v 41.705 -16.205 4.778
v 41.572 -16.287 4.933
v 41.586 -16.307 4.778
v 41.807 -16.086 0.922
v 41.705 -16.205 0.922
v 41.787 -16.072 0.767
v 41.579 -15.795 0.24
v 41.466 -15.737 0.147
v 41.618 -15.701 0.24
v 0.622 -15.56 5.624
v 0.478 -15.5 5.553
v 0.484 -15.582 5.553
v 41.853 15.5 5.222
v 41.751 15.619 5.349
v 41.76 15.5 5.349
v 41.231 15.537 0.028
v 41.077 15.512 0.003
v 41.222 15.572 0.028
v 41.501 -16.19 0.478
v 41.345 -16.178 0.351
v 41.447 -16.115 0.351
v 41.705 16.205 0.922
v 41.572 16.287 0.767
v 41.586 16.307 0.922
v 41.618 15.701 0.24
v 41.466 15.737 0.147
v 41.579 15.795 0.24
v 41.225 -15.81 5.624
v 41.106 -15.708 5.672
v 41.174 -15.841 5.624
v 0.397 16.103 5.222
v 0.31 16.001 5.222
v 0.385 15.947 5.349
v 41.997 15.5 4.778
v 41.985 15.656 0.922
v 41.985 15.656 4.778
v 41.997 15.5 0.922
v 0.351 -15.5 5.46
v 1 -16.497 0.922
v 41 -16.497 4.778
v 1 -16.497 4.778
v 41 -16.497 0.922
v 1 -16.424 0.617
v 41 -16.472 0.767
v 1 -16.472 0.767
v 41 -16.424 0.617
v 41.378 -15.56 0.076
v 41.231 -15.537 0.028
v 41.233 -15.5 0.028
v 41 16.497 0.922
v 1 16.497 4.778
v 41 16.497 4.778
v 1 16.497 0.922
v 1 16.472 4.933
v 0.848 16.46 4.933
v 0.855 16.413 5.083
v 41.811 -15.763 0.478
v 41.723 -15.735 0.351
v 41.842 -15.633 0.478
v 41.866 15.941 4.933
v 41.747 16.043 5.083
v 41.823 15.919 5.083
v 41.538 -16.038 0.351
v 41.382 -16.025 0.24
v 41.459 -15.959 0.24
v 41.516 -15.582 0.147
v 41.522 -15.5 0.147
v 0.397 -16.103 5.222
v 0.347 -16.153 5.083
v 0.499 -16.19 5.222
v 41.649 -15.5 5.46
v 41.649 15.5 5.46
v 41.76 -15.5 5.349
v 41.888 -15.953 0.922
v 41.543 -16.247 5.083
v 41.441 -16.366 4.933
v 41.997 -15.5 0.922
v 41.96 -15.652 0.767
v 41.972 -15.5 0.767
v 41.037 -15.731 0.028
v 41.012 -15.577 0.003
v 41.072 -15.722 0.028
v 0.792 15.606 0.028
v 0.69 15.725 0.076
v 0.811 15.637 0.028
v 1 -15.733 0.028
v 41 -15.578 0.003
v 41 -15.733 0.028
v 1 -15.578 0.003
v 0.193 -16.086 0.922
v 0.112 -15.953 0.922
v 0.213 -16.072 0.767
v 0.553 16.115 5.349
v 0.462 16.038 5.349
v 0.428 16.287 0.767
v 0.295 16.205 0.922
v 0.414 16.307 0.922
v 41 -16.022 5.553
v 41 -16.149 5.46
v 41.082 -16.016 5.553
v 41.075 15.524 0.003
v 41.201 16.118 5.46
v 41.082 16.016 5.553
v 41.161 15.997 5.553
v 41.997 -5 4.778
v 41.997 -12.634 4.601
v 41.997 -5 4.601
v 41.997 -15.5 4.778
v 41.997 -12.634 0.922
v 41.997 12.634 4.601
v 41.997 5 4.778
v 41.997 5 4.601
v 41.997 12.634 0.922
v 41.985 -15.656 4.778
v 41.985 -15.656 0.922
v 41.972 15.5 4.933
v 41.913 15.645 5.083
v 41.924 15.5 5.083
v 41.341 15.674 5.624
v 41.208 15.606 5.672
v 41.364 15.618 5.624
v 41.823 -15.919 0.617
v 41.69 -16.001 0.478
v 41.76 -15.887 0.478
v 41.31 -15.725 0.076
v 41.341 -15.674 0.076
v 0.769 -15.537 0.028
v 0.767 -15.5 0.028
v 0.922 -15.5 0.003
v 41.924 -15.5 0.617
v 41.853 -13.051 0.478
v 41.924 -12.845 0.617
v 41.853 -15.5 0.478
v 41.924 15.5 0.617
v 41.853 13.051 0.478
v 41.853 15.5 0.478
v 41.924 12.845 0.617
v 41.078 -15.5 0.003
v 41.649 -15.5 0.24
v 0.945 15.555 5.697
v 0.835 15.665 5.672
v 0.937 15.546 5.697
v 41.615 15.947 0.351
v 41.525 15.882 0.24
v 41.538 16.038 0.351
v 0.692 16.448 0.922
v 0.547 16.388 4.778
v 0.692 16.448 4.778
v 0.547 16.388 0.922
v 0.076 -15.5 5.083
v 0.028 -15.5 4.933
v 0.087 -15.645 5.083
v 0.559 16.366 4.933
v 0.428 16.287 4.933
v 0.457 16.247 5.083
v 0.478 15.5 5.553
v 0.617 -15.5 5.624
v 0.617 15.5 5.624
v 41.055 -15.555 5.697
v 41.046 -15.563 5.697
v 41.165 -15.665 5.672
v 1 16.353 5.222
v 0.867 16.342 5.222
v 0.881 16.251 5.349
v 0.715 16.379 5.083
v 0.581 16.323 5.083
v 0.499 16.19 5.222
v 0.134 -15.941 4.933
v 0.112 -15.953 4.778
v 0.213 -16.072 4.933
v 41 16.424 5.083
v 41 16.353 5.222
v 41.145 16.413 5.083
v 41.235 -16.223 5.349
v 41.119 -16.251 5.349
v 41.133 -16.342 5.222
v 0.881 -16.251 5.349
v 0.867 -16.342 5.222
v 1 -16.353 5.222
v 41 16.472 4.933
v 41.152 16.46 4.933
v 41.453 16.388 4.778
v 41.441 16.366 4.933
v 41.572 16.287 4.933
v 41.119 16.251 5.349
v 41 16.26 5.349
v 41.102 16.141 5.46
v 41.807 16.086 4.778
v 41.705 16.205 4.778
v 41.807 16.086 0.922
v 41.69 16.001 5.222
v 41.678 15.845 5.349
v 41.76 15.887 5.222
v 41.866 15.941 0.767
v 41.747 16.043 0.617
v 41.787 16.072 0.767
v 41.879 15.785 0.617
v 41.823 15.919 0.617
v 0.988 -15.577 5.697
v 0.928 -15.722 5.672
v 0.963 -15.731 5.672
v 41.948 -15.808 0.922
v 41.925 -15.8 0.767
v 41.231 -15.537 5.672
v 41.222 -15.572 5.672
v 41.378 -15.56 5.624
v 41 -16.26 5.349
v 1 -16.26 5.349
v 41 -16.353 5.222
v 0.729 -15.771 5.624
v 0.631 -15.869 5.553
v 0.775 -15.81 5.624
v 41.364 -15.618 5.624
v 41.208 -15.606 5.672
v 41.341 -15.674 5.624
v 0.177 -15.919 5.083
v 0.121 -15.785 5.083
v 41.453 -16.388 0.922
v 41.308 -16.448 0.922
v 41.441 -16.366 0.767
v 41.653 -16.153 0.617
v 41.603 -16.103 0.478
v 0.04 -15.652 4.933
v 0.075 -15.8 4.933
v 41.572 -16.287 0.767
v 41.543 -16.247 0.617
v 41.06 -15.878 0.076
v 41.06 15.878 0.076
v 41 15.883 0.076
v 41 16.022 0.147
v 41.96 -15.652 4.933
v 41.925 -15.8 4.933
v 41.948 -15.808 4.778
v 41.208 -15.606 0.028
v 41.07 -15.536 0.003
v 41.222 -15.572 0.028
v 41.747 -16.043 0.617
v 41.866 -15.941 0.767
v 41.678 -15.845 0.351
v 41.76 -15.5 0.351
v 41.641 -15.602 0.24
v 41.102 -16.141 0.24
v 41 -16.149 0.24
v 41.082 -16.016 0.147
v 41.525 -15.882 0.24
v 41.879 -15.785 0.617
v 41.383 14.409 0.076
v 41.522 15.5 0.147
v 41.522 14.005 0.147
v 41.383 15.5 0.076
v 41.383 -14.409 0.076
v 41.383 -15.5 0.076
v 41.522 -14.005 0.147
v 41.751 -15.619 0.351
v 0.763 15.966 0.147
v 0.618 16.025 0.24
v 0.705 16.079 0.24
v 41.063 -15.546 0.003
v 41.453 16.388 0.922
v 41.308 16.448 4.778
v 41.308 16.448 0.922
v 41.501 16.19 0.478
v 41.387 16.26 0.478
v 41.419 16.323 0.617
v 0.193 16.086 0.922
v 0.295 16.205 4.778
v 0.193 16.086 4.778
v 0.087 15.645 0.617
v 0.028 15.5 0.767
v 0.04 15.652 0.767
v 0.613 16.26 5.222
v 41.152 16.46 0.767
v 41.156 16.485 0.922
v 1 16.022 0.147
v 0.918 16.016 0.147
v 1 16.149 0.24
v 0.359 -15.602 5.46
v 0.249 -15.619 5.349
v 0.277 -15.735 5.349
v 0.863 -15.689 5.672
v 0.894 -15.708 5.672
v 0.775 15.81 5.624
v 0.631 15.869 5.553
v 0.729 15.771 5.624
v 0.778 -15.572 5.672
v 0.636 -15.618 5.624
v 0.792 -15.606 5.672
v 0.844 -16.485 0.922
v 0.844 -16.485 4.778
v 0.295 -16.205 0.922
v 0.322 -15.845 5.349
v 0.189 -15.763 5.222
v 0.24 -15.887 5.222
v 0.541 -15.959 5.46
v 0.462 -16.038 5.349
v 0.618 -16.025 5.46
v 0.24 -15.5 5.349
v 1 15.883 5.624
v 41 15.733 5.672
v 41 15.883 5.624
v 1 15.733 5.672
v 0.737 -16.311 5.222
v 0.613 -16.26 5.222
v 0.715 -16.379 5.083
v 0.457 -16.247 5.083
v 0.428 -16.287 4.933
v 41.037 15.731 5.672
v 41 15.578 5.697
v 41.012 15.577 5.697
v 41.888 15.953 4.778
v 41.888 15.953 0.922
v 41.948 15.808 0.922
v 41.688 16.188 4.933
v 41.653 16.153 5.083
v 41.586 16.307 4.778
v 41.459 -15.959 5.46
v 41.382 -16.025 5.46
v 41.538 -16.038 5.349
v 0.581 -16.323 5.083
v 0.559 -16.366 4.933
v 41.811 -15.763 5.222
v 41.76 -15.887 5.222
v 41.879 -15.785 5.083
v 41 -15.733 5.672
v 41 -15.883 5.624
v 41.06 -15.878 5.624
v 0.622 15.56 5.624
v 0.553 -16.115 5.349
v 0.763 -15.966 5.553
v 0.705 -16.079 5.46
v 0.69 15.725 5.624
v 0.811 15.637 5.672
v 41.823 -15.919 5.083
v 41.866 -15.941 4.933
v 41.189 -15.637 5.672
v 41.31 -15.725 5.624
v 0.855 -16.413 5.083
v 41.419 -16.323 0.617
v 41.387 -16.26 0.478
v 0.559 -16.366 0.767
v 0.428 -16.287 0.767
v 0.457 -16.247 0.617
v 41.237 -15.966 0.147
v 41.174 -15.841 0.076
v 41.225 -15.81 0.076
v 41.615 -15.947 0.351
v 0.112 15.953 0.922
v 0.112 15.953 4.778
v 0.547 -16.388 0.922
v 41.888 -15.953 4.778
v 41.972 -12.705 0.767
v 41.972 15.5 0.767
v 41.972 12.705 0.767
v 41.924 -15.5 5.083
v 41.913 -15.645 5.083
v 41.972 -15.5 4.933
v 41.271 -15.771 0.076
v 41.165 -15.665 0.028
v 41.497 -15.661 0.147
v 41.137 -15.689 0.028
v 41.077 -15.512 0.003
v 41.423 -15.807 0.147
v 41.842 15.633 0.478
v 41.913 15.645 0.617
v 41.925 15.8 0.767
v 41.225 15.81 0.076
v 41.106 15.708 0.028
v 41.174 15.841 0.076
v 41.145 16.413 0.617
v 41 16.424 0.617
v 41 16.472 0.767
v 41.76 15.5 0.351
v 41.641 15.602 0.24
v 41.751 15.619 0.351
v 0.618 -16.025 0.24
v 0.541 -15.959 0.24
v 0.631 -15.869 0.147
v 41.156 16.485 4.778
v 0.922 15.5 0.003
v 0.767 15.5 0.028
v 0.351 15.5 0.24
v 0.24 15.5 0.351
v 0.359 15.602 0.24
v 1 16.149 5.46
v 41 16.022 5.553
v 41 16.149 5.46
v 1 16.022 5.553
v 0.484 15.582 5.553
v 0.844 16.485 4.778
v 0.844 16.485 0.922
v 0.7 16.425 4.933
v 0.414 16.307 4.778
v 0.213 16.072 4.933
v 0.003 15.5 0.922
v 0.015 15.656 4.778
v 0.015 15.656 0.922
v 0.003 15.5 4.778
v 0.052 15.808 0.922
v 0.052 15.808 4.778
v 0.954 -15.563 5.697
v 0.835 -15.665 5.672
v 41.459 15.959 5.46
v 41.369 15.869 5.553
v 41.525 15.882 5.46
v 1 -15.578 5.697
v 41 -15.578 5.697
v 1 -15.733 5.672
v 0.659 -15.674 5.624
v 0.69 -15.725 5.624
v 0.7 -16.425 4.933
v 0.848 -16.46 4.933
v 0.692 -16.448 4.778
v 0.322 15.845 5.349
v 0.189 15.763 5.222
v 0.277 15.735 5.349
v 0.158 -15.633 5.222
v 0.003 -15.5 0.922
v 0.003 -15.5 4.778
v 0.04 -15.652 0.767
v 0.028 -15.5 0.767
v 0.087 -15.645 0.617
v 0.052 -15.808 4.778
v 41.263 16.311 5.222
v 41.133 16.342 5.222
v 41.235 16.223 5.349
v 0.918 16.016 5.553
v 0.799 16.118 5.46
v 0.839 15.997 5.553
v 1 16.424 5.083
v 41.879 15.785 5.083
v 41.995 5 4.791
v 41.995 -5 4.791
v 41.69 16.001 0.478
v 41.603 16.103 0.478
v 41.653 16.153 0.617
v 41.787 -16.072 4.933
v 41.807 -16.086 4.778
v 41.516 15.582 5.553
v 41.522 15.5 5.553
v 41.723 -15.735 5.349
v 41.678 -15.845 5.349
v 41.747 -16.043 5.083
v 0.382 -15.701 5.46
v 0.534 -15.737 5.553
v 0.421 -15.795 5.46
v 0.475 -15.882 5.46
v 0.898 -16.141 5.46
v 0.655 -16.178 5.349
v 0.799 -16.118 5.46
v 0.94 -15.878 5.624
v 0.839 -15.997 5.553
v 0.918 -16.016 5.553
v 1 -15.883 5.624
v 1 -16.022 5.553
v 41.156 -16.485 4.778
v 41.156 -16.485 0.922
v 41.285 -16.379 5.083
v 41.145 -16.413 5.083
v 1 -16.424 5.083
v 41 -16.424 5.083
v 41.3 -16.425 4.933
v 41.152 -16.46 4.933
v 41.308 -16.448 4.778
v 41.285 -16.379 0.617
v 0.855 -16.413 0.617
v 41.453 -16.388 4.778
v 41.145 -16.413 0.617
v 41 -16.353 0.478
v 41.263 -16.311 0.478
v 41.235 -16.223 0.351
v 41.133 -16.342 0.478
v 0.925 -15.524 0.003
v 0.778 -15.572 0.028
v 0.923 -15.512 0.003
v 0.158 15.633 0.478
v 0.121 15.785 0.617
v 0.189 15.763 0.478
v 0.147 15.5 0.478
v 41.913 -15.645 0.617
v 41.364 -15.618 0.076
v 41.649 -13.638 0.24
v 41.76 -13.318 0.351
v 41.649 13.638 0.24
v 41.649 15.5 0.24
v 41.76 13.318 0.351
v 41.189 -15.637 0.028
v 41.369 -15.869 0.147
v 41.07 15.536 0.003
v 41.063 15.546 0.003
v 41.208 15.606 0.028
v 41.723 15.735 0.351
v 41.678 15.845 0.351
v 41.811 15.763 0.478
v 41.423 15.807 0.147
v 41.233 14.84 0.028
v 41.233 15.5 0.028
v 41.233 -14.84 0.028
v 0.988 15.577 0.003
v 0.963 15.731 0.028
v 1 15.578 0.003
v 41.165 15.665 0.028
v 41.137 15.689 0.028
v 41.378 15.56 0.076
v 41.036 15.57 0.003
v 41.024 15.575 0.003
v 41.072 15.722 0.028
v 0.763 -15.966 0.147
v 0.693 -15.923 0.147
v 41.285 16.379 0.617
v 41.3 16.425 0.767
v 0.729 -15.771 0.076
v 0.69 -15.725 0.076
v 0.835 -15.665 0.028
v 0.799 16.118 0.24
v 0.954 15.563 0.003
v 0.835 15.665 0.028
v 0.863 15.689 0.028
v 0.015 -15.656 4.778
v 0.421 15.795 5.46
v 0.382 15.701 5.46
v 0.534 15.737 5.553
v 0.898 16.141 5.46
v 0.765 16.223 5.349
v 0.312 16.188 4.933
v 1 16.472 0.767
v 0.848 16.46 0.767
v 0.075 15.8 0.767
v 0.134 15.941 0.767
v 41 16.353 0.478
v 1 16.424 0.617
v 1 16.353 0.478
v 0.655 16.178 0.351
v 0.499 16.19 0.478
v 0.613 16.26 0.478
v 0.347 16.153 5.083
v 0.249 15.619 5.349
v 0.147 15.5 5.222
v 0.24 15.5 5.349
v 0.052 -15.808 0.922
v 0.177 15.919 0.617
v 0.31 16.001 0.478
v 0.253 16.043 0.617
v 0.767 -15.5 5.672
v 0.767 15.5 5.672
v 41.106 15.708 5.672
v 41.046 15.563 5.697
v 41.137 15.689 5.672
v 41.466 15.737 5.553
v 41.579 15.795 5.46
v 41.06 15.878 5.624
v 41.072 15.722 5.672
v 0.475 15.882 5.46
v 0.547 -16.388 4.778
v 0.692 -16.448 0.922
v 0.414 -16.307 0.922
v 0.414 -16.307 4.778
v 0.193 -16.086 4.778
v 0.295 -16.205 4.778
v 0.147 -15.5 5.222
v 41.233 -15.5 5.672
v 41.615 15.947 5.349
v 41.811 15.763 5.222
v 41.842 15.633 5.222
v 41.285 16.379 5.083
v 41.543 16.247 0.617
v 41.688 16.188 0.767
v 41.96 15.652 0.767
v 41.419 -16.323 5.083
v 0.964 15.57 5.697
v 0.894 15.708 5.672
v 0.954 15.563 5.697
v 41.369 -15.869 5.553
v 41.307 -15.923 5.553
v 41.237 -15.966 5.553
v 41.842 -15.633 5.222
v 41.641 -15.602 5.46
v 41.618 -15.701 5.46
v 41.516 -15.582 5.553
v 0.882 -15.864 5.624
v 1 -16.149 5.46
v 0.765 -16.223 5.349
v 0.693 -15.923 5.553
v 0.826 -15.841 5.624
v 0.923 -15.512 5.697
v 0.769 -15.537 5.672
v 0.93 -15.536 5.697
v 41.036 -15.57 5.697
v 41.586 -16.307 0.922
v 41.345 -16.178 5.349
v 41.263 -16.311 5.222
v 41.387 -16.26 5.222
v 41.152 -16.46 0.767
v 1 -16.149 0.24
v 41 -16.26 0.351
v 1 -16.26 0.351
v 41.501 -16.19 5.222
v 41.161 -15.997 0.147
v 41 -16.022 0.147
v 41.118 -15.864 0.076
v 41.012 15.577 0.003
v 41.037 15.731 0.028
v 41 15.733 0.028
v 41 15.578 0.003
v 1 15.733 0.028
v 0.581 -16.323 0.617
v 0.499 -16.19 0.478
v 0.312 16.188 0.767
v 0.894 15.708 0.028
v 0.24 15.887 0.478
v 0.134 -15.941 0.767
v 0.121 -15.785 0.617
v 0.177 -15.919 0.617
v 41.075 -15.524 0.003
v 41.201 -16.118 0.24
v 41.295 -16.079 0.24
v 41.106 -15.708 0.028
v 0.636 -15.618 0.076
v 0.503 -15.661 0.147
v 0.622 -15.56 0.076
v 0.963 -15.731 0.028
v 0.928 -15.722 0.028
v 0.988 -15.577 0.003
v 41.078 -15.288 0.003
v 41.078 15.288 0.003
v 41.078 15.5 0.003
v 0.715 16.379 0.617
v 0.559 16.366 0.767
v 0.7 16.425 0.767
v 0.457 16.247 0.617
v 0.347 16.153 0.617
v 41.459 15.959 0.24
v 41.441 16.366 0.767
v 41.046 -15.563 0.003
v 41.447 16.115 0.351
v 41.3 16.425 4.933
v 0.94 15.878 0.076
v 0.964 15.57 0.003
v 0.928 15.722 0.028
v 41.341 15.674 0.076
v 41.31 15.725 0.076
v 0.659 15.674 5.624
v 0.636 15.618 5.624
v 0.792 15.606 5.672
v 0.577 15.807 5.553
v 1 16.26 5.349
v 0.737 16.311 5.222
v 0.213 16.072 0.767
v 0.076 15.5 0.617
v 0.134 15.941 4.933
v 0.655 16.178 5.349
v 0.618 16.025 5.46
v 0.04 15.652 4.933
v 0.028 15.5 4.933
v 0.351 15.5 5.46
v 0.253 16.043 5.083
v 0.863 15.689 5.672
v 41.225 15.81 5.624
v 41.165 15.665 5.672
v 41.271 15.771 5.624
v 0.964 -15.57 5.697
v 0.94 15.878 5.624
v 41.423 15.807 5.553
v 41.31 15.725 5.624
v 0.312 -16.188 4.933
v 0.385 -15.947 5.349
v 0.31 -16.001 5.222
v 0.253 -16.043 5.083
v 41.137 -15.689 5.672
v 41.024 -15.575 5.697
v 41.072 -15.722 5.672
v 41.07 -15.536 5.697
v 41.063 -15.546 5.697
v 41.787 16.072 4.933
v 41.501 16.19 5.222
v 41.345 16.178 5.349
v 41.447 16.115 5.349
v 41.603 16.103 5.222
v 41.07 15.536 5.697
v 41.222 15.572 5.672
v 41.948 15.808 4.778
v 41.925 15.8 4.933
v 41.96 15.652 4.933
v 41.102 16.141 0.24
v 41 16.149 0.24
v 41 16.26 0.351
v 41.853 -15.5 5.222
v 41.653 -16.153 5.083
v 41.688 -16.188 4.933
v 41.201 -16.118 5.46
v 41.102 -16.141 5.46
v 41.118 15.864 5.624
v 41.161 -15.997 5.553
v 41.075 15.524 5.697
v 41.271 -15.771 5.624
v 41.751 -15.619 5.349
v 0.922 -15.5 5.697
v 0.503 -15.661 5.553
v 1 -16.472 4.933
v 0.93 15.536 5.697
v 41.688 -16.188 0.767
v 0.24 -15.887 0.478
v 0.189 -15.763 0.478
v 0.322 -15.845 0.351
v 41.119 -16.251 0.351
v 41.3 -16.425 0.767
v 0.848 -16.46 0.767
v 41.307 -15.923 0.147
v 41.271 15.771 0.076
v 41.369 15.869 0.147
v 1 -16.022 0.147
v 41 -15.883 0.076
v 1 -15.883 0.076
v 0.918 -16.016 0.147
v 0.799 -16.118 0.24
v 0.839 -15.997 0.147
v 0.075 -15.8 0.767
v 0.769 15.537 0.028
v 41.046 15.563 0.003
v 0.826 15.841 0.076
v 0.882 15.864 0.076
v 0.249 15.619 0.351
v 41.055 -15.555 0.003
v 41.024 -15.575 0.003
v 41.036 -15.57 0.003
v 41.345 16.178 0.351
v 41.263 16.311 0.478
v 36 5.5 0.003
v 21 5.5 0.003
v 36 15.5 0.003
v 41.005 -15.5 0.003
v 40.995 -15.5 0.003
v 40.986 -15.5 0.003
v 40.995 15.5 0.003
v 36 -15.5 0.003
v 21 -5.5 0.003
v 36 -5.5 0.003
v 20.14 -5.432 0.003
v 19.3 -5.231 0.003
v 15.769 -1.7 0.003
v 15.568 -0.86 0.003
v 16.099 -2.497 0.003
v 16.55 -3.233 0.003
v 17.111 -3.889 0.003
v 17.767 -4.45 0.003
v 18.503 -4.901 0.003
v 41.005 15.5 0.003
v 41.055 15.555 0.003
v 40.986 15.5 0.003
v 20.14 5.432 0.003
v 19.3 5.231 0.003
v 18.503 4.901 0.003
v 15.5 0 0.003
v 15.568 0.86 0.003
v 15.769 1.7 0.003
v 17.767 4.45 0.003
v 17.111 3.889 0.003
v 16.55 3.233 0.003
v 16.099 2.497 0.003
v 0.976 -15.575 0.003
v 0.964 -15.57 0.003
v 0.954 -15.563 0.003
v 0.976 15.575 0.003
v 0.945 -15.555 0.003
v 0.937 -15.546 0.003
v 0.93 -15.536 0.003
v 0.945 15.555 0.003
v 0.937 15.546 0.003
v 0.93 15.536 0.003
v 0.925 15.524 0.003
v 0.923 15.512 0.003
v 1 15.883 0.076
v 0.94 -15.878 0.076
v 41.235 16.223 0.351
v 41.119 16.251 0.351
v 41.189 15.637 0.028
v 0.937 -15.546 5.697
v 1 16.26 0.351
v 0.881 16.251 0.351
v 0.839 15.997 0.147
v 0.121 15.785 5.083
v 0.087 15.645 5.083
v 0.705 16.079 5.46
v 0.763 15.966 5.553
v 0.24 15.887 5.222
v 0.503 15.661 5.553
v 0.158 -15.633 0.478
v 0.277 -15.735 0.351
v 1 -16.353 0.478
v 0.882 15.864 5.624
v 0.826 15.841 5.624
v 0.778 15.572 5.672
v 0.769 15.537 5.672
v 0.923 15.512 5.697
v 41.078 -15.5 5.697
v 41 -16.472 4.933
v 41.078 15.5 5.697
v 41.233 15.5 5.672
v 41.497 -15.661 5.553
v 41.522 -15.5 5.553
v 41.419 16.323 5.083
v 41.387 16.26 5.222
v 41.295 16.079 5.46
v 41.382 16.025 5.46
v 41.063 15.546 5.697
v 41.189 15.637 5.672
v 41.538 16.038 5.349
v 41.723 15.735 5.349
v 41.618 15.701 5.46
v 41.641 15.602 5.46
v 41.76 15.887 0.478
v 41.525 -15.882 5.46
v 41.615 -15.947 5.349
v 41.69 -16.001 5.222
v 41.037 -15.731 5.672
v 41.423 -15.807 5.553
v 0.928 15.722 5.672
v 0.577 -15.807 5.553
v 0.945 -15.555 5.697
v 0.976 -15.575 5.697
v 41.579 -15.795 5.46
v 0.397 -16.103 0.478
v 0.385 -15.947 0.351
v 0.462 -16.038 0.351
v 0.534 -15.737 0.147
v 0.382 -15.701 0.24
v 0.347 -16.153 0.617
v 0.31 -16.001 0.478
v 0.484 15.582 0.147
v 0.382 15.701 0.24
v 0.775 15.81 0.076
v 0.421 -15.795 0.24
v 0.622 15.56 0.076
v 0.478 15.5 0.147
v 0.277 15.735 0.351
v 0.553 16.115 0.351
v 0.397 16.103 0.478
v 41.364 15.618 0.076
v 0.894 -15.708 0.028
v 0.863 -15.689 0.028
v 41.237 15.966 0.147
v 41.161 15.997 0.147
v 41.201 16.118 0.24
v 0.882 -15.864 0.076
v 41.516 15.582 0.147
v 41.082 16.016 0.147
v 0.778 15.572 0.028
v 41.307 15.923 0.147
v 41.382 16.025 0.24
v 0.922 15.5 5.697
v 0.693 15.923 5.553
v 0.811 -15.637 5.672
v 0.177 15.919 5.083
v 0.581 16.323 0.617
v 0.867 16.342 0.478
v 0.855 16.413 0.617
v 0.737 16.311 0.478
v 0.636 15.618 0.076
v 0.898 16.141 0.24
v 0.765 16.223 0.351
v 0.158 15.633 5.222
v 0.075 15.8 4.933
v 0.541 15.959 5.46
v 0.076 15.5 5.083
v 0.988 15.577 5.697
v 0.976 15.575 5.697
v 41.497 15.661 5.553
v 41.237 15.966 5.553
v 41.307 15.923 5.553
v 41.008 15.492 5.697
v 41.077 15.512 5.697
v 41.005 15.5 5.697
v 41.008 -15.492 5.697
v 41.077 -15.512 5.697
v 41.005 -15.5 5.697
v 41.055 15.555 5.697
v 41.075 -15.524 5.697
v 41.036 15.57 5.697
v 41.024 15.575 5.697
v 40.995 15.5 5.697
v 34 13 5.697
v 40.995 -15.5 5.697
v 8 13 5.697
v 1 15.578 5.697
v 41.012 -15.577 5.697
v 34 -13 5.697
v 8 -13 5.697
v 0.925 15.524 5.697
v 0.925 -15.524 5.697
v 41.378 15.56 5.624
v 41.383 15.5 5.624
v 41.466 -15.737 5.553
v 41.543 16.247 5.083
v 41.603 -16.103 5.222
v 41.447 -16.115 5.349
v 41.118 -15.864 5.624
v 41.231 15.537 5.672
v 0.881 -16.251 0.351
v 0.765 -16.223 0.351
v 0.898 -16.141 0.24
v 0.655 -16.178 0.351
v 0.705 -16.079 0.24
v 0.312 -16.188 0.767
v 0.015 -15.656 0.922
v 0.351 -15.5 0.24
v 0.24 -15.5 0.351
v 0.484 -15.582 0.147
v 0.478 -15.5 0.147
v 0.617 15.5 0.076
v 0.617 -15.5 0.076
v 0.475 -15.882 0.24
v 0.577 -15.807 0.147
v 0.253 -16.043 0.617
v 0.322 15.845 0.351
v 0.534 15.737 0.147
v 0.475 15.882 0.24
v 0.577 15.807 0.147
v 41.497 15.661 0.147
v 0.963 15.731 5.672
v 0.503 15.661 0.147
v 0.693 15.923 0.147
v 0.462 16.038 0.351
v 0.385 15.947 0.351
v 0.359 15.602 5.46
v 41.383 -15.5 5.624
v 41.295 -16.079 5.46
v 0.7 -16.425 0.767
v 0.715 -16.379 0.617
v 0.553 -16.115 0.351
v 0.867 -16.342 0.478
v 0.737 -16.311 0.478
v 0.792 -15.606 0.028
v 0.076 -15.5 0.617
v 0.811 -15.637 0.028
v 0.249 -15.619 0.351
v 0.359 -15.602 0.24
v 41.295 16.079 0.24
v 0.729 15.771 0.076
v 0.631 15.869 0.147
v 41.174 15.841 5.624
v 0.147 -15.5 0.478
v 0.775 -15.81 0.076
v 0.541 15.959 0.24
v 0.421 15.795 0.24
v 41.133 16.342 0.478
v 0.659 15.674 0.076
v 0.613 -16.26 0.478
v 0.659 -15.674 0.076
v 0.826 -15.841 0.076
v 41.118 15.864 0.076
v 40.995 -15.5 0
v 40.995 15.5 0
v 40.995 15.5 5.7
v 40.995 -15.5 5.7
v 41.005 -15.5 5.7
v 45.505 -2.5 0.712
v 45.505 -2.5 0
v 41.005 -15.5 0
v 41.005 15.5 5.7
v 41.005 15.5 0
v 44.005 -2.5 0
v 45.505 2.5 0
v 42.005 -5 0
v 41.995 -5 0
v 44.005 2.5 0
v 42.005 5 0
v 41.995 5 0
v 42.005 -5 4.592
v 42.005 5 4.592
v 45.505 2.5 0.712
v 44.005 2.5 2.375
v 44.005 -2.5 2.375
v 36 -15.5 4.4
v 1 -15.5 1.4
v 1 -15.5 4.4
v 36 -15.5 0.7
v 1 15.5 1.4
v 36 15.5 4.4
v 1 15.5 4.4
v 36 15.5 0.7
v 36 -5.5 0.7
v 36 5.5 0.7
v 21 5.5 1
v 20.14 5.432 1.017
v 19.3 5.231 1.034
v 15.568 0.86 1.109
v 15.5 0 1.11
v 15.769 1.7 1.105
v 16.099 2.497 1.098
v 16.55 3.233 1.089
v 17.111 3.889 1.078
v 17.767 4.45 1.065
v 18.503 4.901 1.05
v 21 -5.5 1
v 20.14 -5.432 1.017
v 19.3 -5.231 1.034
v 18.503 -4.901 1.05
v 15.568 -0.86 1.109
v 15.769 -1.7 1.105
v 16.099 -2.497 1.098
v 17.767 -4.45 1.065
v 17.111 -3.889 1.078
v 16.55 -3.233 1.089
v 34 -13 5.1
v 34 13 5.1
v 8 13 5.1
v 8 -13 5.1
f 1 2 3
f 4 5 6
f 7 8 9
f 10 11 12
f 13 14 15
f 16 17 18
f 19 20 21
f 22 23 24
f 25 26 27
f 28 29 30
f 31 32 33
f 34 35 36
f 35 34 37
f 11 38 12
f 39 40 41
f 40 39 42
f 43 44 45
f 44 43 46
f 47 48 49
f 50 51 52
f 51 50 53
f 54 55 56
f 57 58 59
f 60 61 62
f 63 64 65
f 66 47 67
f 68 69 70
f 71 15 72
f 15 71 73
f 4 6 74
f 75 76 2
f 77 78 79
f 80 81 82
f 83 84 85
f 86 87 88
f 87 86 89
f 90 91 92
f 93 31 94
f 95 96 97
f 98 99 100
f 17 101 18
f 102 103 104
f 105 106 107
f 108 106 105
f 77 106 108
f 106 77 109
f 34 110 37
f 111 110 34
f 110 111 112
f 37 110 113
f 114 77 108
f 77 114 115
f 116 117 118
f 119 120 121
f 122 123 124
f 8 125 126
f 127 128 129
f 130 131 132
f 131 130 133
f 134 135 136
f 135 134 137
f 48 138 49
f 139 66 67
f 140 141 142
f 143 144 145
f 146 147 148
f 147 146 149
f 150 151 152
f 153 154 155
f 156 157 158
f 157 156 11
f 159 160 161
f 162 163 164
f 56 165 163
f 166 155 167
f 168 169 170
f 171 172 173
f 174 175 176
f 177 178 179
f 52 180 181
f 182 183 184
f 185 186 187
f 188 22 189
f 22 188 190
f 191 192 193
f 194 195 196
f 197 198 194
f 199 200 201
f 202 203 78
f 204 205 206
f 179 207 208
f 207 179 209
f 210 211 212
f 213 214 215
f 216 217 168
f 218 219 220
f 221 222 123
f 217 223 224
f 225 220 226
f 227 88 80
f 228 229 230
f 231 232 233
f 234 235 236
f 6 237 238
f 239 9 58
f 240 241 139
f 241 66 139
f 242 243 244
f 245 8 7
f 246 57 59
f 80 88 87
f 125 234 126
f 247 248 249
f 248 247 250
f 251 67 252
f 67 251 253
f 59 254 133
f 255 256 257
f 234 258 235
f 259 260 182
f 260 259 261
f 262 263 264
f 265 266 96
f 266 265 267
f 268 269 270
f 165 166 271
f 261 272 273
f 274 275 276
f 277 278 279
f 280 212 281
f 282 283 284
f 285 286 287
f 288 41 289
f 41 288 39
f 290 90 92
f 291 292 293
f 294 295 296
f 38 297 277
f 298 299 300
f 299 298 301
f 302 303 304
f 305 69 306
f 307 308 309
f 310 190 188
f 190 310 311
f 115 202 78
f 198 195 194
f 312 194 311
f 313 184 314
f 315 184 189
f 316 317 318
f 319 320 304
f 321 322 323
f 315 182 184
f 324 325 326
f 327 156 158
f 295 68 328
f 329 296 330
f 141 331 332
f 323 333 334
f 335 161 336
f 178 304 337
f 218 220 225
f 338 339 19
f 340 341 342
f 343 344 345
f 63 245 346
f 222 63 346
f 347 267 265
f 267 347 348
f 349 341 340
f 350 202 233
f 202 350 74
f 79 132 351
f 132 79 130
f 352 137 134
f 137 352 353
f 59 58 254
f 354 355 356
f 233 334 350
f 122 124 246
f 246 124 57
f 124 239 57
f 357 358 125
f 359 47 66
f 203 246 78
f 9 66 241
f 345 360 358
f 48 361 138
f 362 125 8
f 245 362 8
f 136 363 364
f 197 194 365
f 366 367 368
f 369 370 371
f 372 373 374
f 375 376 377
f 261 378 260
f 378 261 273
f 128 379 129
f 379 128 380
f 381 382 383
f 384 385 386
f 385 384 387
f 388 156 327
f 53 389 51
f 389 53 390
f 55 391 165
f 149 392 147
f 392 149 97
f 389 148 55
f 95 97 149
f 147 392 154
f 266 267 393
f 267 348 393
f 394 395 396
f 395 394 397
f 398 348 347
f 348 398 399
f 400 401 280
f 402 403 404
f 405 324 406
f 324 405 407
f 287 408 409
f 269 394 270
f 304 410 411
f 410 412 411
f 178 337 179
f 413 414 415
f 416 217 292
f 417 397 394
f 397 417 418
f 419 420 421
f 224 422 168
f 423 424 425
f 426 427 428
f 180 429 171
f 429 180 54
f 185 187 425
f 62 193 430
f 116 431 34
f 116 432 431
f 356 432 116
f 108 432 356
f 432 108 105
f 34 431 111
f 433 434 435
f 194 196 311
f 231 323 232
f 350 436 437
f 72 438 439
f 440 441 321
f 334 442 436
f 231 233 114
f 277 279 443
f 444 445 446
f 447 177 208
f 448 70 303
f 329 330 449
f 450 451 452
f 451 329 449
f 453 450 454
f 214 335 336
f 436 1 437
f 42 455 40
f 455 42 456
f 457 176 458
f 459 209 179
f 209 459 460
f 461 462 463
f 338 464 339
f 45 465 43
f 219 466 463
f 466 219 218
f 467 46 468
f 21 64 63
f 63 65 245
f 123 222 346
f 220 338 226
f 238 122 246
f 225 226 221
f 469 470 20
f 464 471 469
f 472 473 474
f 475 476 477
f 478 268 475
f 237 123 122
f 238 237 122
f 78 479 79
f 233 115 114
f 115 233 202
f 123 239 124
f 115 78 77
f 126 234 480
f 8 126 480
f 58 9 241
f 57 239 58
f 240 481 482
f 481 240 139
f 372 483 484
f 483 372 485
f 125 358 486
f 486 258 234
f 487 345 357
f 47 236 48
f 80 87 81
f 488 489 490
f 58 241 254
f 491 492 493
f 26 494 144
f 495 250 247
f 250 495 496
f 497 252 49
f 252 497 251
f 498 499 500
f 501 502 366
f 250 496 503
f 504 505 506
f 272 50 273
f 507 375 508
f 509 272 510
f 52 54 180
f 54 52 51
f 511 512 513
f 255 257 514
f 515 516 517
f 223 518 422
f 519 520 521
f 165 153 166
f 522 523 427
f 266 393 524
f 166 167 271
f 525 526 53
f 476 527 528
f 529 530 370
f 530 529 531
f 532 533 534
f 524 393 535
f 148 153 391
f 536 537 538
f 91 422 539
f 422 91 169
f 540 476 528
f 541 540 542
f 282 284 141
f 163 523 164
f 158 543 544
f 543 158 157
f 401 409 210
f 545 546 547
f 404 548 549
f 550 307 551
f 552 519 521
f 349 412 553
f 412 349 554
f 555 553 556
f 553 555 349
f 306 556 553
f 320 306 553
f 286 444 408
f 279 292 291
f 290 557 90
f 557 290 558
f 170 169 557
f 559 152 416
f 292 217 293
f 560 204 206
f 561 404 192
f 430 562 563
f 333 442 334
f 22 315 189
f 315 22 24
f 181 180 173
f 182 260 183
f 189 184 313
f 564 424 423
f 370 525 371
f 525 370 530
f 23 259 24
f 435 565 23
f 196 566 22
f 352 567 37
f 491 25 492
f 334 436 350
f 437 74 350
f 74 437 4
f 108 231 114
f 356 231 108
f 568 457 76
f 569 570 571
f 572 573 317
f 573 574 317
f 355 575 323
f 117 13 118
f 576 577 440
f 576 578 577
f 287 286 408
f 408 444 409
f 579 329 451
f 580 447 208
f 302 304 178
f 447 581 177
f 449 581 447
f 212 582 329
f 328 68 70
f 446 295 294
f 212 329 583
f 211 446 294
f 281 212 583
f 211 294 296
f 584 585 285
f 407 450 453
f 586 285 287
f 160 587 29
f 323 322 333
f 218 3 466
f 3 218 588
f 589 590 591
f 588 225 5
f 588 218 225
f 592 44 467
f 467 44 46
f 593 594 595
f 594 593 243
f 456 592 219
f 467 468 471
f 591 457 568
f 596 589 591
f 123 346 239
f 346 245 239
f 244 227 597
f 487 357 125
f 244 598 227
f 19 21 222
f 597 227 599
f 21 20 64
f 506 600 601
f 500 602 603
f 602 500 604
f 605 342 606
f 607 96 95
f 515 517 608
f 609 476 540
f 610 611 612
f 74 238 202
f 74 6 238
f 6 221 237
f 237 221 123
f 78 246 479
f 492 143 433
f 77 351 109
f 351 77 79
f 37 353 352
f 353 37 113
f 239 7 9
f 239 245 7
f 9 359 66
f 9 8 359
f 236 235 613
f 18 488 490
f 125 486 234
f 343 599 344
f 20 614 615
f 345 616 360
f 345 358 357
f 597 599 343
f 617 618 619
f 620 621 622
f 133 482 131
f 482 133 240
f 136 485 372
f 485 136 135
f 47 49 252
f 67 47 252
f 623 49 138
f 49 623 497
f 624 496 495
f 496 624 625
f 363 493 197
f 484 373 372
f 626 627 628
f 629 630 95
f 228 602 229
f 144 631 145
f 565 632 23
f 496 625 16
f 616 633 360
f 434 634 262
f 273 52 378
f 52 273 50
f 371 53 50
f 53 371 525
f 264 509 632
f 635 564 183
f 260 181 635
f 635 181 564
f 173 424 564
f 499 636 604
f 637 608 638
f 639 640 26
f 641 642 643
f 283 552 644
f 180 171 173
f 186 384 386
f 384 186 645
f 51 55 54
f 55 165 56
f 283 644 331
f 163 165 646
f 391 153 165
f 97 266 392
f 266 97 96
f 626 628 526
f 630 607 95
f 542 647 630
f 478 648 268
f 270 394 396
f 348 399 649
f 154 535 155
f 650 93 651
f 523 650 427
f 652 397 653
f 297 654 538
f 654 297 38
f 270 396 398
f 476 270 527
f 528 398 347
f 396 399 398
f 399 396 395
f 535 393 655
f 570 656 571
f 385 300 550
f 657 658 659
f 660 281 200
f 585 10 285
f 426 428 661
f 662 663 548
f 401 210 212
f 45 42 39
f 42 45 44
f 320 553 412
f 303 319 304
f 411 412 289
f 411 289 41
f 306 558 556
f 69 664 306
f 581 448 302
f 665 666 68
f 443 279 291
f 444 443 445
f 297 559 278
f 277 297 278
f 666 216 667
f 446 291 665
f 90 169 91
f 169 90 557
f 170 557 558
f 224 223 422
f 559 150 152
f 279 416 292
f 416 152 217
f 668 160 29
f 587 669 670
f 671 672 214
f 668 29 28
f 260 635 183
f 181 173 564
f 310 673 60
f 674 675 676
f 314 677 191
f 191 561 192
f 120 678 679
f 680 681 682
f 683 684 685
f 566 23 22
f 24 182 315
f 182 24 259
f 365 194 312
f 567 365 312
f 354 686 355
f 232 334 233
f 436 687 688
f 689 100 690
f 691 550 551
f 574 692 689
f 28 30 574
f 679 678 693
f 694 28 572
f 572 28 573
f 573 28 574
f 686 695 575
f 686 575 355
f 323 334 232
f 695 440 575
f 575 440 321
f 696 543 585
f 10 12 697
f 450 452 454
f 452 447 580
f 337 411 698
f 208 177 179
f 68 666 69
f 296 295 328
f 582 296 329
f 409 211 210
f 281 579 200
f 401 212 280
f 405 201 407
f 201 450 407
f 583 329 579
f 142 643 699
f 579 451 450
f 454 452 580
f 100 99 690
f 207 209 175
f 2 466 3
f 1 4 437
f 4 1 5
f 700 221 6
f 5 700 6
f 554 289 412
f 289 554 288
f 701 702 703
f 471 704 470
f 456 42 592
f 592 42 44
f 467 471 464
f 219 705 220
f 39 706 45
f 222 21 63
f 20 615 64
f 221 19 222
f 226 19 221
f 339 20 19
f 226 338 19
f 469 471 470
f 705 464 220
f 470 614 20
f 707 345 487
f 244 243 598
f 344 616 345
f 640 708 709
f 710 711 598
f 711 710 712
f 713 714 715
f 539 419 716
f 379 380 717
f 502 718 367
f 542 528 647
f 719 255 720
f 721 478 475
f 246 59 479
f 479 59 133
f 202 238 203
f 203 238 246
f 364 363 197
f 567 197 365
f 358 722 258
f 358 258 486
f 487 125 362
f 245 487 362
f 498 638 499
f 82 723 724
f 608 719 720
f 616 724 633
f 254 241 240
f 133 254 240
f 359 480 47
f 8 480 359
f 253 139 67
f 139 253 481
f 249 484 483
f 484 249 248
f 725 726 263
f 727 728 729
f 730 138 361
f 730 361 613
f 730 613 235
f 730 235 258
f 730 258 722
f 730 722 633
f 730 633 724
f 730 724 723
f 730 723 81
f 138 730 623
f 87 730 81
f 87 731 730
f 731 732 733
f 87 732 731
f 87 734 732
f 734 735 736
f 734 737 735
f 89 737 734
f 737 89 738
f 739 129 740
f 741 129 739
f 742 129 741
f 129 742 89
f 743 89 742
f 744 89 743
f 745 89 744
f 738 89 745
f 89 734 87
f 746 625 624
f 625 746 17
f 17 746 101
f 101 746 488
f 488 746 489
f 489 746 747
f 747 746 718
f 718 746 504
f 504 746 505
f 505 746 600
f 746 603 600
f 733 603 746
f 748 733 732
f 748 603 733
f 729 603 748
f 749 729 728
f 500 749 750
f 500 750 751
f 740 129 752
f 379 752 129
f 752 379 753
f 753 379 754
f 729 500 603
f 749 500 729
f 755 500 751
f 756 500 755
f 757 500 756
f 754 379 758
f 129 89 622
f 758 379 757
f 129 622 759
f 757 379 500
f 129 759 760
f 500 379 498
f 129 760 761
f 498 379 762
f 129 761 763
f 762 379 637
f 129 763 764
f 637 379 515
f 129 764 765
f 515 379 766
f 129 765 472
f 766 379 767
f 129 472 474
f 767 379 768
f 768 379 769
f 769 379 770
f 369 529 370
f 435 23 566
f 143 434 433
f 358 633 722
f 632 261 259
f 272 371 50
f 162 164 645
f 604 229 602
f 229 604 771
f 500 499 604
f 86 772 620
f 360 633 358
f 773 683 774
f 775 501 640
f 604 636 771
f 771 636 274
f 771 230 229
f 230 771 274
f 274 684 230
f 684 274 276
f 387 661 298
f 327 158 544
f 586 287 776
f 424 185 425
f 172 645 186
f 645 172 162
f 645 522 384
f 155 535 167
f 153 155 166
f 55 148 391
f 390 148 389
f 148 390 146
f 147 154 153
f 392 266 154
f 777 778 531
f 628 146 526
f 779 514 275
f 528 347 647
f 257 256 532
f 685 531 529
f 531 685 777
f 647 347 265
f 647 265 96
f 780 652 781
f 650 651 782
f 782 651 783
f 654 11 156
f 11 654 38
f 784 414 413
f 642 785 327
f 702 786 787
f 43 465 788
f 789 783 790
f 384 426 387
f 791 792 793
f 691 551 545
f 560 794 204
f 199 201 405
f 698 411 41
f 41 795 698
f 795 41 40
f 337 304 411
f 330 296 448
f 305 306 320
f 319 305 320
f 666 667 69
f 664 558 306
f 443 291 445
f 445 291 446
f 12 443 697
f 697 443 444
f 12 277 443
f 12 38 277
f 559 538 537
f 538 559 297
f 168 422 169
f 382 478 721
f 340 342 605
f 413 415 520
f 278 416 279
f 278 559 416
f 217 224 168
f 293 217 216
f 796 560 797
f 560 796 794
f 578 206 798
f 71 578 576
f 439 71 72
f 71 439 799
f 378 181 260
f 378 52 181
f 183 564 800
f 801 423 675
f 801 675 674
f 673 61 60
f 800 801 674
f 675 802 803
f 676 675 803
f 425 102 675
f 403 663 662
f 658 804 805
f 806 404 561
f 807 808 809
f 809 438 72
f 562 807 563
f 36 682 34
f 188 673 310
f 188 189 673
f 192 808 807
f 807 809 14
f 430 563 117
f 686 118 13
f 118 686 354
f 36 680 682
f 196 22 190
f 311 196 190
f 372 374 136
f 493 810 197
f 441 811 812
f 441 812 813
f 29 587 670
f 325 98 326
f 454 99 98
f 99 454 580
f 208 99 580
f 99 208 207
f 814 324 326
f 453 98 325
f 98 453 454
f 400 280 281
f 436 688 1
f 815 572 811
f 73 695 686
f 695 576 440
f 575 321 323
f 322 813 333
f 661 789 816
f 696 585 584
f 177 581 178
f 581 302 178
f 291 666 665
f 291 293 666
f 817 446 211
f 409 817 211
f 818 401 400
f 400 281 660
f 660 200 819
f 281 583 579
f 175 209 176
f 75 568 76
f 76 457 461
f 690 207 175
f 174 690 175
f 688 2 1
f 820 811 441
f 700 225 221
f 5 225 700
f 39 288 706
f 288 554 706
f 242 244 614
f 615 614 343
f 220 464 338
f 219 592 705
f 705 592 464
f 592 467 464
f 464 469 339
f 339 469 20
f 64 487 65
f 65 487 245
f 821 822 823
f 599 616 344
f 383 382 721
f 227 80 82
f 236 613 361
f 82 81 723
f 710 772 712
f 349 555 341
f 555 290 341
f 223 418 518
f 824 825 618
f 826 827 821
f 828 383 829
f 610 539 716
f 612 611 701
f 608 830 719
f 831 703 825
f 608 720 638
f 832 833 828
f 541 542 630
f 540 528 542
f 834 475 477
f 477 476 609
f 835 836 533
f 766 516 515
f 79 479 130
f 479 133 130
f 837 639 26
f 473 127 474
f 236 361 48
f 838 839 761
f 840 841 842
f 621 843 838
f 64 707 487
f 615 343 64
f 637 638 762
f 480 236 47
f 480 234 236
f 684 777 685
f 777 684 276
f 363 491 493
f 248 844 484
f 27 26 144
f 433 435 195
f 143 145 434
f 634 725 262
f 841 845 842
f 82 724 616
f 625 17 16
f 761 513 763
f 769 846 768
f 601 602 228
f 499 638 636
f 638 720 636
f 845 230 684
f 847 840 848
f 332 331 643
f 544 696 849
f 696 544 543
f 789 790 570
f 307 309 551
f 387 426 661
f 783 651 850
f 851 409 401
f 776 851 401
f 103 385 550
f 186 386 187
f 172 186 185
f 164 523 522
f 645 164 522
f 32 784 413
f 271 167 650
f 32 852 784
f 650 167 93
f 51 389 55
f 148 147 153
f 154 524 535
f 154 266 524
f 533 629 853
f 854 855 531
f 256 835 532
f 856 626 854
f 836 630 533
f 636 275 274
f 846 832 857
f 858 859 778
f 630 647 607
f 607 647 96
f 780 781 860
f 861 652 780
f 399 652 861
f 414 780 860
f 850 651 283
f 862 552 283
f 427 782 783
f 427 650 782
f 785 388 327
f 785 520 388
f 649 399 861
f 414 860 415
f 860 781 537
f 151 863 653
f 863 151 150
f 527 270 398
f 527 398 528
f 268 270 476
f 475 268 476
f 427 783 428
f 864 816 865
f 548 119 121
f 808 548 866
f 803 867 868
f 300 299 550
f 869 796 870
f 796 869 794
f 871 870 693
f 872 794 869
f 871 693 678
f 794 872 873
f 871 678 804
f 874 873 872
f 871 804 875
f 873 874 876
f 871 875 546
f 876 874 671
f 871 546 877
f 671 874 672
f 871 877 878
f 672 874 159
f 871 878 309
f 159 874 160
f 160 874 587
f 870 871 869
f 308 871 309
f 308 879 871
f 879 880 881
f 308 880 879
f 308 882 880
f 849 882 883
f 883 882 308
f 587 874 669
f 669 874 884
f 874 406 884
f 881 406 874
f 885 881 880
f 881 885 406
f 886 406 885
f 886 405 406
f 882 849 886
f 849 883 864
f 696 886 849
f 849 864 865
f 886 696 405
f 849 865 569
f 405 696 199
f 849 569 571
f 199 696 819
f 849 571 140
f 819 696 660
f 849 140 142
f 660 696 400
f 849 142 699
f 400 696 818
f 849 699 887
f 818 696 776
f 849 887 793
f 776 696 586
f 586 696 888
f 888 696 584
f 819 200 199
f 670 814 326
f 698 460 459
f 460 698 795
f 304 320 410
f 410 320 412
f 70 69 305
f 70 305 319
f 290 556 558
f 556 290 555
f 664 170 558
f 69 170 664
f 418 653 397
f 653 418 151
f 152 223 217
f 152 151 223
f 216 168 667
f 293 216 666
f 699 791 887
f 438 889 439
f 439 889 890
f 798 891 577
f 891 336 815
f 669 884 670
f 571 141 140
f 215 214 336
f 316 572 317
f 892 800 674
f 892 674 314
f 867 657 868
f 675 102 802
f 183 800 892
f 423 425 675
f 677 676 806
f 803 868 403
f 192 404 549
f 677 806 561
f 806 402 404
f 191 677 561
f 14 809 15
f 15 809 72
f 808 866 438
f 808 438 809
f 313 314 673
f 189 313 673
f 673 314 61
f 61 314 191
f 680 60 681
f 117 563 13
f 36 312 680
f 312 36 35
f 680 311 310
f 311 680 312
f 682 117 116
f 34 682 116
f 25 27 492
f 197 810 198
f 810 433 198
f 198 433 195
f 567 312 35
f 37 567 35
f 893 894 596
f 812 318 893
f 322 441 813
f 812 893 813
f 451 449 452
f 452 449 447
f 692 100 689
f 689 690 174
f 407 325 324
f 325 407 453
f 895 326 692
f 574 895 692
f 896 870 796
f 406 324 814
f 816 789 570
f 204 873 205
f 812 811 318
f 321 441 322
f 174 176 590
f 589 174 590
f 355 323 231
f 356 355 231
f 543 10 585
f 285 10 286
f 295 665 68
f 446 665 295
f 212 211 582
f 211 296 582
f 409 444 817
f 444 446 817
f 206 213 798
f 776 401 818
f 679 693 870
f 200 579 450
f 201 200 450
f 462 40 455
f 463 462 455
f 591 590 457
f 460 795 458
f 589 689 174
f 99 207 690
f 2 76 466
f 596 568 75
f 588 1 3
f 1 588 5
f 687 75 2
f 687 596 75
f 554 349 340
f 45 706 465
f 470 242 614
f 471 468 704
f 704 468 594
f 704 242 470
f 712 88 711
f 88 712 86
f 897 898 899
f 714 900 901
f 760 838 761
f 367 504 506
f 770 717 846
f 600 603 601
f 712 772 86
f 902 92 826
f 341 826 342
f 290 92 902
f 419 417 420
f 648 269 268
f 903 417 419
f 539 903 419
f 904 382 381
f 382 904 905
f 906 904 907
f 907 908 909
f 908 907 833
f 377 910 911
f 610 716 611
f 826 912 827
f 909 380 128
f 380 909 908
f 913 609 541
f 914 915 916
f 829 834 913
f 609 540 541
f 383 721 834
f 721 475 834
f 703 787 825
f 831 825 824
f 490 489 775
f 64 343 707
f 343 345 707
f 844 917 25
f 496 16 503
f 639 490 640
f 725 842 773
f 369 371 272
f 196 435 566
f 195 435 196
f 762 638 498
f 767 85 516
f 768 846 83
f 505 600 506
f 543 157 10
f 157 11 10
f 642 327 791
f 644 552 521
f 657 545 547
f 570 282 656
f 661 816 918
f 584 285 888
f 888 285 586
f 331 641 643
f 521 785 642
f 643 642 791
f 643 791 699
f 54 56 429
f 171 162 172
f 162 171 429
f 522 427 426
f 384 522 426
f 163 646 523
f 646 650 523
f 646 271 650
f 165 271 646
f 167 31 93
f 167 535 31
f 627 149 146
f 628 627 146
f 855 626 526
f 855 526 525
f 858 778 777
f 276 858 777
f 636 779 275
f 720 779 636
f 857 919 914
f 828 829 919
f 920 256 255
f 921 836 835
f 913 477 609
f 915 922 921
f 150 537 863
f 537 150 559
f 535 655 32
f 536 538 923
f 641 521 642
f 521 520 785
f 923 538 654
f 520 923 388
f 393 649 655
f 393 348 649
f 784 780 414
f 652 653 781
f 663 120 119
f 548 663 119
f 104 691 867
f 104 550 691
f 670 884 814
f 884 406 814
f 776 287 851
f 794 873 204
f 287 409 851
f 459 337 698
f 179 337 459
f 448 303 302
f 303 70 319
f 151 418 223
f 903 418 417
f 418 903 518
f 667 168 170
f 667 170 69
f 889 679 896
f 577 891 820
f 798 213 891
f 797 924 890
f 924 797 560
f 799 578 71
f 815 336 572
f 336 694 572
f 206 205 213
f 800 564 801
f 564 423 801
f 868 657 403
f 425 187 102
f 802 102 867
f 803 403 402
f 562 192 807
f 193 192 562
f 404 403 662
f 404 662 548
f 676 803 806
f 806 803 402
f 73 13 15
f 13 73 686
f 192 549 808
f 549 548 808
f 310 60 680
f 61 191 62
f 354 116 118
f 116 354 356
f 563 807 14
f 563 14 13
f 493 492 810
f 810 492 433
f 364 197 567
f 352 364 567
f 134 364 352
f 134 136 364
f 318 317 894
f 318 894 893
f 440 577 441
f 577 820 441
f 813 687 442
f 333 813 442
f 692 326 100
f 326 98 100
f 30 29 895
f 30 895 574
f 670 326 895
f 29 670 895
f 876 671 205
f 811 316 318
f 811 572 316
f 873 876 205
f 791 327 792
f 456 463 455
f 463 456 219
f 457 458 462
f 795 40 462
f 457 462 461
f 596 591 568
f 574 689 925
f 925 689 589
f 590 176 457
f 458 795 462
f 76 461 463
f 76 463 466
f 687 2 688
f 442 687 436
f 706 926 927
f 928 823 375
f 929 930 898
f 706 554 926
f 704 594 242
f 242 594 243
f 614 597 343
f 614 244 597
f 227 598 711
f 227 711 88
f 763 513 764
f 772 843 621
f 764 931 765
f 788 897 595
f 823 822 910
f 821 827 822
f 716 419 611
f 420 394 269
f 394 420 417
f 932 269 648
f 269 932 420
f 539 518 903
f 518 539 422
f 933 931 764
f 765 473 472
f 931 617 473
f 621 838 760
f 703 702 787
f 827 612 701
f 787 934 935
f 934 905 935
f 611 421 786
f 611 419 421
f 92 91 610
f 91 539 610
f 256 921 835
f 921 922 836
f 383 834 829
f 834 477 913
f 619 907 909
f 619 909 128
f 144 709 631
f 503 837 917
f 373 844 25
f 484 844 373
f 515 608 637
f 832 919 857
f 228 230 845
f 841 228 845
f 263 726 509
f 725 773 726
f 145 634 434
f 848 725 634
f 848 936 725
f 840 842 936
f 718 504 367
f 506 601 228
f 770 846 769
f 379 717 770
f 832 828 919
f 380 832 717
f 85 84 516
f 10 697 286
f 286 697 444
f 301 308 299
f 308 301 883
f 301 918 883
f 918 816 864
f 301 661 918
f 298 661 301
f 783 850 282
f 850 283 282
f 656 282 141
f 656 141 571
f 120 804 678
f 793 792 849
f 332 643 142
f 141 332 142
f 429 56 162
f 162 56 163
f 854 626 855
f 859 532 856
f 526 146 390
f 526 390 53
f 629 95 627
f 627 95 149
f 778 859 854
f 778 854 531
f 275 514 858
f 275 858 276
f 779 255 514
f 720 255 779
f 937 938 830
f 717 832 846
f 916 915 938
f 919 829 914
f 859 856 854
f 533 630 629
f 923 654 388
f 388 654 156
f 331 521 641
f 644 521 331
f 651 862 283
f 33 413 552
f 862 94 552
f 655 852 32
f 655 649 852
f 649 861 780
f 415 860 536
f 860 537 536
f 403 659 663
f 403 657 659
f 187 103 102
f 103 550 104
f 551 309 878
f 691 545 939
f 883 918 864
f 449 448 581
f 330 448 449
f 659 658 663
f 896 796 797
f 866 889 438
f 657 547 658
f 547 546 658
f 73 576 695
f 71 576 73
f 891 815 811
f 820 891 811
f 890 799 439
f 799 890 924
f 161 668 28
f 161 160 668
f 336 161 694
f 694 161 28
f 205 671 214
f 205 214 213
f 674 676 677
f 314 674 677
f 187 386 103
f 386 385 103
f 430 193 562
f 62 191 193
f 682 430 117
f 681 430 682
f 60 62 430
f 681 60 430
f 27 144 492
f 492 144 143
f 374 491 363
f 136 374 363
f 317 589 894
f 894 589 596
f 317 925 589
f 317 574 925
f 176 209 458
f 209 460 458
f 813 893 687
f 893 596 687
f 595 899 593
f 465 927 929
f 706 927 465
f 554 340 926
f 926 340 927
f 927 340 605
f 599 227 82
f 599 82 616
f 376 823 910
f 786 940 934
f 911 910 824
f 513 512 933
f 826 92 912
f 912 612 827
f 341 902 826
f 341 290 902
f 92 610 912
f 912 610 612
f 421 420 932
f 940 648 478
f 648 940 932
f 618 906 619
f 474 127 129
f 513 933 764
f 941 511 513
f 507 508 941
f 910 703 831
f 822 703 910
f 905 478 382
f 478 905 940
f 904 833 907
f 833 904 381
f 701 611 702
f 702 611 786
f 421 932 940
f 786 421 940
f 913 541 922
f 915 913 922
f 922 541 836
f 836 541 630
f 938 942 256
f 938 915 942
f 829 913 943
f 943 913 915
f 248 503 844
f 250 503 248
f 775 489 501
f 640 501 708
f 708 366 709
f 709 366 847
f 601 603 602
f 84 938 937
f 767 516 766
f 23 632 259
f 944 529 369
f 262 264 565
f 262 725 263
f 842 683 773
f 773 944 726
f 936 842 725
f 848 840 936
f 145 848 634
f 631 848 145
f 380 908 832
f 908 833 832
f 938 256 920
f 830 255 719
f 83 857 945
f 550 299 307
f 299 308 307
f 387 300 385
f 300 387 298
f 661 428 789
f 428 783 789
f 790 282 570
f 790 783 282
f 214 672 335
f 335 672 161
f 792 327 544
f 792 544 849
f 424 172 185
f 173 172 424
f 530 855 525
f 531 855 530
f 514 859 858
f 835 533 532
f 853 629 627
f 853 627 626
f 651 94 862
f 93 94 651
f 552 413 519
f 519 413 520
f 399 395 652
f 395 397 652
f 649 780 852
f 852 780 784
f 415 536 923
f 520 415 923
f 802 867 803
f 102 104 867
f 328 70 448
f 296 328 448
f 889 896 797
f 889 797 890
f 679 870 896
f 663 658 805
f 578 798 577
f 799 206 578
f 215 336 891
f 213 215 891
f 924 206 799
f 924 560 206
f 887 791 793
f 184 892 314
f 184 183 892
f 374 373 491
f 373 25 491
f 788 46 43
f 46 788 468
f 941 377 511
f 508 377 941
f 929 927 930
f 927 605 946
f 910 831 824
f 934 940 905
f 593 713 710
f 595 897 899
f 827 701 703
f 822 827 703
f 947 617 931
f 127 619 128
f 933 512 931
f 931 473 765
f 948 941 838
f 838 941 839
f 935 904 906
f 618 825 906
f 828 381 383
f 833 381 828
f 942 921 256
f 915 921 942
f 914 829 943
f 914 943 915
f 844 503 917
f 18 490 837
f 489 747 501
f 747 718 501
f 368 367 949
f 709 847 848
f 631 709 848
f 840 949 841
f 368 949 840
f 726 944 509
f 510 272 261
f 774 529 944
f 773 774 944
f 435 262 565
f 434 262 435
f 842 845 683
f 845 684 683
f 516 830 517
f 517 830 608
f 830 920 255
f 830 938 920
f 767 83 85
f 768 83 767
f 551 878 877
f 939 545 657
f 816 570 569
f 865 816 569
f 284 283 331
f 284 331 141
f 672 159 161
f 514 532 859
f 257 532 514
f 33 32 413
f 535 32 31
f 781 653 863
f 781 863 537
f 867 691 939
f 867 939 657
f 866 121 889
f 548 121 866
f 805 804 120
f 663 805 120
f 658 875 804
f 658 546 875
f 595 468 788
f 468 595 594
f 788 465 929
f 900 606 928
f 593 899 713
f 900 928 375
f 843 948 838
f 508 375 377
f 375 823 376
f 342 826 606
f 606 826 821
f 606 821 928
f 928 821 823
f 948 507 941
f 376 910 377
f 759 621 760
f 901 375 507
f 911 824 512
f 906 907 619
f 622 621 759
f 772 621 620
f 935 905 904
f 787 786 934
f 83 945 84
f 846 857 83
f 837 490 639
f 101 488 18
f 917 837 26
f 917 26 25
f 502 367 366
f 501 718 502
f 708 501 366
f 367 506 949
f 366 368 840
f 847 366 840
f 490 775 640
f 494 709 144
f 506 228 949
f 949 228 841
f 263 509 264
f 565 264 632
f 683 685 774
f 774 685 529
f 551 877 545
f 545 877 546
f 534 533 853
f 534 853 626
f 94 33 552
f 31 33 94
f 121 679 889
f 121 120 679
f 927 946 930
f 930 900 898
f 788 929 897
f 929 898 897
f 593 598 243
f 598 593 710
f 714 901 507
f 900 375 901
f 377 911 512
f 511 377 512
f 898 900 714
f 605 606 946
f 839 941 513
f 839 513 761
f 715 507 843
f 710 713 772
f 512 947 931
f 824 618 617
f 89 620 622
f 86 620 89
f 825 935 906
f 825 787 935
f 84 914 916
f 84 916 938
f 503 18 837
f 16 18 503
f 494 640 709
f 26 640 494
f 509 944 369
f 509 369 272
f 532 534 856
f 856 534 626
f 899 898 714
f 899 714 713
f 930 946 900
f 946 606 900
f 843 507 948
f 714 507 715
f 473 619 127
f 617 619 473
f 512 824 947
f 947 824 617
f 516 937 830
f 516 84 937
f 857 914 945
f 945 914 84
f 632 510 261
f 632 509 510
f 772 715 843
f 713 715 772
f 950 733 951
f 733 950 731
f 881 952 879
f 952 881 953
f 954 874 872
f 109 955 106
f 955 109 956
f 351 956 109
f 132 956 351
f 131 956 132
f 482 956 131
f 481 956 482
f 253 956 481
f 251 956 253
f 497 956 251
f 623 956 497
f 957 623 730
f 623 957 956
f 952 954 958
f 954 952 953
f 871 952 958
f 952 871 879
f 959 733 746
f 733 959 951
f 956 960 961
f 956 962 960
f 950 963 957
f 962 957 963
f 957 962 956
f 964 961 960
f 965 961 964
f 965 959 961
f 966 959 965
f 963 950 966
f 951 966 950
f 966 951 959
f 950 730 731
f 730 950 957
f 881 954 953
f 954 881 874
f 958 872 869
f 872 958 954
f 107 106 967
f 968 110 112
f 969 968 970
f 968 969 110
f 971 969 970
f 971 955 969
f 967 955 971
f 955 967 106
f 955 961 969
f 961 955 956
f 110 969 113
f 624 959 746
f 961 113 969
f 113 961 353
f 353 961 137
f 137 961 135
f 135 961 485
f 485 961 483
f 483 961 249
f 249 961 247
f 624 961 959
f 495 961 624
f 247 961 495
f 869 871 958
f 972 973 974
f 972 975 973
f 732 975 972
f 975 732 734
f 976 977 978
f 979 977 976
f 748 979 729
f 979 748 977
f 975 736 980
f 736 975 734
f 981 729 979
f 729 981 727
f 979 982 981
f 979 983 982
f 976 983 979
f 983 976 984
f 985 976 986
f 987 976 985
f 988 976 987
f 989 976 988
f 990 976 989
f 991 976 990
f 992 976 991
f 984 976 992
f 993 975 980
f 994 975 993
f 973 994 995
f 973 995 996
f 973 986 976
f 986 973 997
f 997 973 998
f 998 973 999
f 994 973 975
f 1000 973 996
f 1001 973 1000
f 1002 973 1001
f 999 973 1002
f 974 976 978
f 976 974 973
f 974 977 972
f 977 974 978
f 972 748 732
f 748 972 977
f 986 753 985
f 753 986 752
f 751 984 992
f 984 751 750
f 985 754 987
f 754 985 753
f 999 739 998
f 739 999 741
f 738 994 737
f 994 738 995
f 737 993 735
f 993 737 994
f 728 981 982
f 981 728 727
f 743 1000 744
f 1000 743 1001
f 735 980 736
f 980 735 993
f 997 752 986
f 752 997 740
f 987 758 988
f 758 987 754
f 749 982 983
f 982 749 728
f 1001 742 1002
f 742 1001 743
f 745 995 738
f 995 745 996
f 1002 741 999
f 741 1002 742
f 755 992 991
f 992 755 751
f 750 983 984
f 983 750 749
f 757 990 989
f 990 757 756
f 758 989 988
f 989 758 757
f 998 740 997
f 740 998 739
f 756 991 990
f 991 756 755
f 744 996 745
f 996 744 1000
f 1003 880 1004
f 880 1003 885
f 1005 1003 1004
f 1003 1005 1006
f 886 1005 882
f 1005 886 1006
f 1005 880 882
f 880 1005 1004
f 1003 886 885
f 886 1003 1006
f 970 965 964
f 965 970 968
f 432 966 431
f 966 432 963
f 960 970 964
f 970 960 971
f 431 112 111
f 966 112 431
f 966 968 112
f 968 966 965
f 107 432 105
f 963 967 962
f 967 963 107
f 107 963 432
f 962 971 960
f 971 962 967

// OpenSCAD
// Preprinted Label Holder (Keyring Style)
// By Brian Khuu 2022-06-26

print_nozzle_dia = 0.6;
print_layer_height = 0.2;

// label preview
label_width = 26; // 25mm (add 0.5mm tol side to side)
label_height = 26; // 25mm (add 0.5mm tol side to side)

// slot
// Default values based on https://www.mbe.com.au/what-is-the-standard-business-card-size-in-australia/
slot_width = 31; // 30mm (add 0.5mm tol side to side)
slot_height = 40; // 30mm (add 0.5mm tol side to side)
slot_thickness = 3; // 0.25mm for thin paper cards. 0.8mm for thick plastic cards. We need to add extra thickness to account for layer droop

// Holder
wall_spacing = print_nozzle_dia+0.4;
wall_card_grip = 5;
wall_x_count = 1;
wall_y_count = 1;

// Calc
slot_label_height = print_layer_height*3+0.1;
wall_base = print_layer_height*3+0.1;
wall_top = print_layer_height*6+0.1;
wall_thickness = wall_base + slot_thickness + wall_top + slot_label_height;
slot_bulk_width = slot_width+wall_spacing*2;
slot_bulk_height = slot_height+wall_spacing*2;

// Keyring
keyring_hole_size_thinnest = 2;
keyring_hole_size_widest = 10;
keyring_hole_wall_top = 1.5;
keyring_hole_wall_side = 10;

// box rounding
boxFilletRadidus = 1;

module roundedBox00(length, width, height, filletRad)
{
    // https://www.printables.com/model/50333-rounded-box-module-for-openscad/files
    filletDia=2*filletRad;
    translate([length/2, width/2, height/2])
    minkowski()
    {
        sphere(filletRad, $fn=40);
        cube([length-filletDia, width-filletDia, height-filletDia], center=true);
    }   
}

module cardholder()
{
    difference()
    {
        union()
        {
            if (boxFilletRadidus == 0)
                translate([0,-slot_bulk_height/2,0])
                    cube([slot_bulk_width, slot_bulk_height, wall_thickness]);
            else
                translate([0,-slot_bulk_width/2,0])
                    roundedBox00(slot_bulk_height, slot_bulk_width, wall_thickness, boxFilletRadidus);
            // Keyring Bulk
            hull()
            {
                translate([slot_bulk_height-boxFilletRadidus,0,wall_thickness/2])                
                    cube([0.01, slot_bulk_width-boxFilletRadidus*2, wall_thickness], center=true);
                translate([slot_bulk_height+keyring_hole_size_thinnest+keyring_hole_wall_top,0,(wall_thickness/8)/2])                
                    cube([0.01, (keyring_hole_size_widest)/2, wall_thickness/8], center=true);
            }
        }

        // Slope
        translate([wall_spacing,0,slot_thickness+wall_base+slot_label_height])
            rotate([-90,0,0])
                translate([0,0,-(slot_bulk_width-wall_spacing*2)/2])
                    linear_extrude(height=slot_bulk_width-wall_spacing*2)
                        polygon(points=[[0,0],
                            [0,slot_thickness],
                            [slot_height-wall_card_grip,slot_thickness+slot_label_height],
                            [slot_height-wall_card_grip,slot_thickness+wall_base+slot_label_height+0.1],
                            [slot_height-wall_card_grip,slot_thickness+wall_base+slot_label_height+0.1],
                            [slot_height-0.01,slot_thickness+wall_base+slot_label_height],
                            [slot_height-wall_card_grip,0]
                            ]);

        // Grip 
        hull()
        {
            translate([slot_bulk_height/2, 0, -0.1])
                cylinder(d=slot_bulk_width/3, h=slot_thickness, $fn=40);
            translate([slot_height+wall_spacing-wall_card_grip, 0, (wall_base+1)/2-0.1])
                cube([0.01, slot_bulk_width/3, wall_base+1], center=true);
        }

        // Label Positioner
        translate([slot_bulk_height/2,0,wall_thickness-slot_label_height+(slot_label_height+0.1)/2+0.1])
            cube([label_width, label_height, slot_label_height+0.1], center=true);    
        
        // Keyring Bulk
        hull()
        {
            translate([slot_bulk_height,0,wall_thickness/2-0.1])                
                cube([0.01, keyring_hole_size_widest, wall_thickness], center=true);
            translate([slot_bulk_height+keyring_hole_size_thinnest,0,wall_thickness/2-0.1])                
                cube([0.01, (keyring_hole_size_widest)/2, wall_thickness], center=true);
        }        
    }
}

cardholder();
